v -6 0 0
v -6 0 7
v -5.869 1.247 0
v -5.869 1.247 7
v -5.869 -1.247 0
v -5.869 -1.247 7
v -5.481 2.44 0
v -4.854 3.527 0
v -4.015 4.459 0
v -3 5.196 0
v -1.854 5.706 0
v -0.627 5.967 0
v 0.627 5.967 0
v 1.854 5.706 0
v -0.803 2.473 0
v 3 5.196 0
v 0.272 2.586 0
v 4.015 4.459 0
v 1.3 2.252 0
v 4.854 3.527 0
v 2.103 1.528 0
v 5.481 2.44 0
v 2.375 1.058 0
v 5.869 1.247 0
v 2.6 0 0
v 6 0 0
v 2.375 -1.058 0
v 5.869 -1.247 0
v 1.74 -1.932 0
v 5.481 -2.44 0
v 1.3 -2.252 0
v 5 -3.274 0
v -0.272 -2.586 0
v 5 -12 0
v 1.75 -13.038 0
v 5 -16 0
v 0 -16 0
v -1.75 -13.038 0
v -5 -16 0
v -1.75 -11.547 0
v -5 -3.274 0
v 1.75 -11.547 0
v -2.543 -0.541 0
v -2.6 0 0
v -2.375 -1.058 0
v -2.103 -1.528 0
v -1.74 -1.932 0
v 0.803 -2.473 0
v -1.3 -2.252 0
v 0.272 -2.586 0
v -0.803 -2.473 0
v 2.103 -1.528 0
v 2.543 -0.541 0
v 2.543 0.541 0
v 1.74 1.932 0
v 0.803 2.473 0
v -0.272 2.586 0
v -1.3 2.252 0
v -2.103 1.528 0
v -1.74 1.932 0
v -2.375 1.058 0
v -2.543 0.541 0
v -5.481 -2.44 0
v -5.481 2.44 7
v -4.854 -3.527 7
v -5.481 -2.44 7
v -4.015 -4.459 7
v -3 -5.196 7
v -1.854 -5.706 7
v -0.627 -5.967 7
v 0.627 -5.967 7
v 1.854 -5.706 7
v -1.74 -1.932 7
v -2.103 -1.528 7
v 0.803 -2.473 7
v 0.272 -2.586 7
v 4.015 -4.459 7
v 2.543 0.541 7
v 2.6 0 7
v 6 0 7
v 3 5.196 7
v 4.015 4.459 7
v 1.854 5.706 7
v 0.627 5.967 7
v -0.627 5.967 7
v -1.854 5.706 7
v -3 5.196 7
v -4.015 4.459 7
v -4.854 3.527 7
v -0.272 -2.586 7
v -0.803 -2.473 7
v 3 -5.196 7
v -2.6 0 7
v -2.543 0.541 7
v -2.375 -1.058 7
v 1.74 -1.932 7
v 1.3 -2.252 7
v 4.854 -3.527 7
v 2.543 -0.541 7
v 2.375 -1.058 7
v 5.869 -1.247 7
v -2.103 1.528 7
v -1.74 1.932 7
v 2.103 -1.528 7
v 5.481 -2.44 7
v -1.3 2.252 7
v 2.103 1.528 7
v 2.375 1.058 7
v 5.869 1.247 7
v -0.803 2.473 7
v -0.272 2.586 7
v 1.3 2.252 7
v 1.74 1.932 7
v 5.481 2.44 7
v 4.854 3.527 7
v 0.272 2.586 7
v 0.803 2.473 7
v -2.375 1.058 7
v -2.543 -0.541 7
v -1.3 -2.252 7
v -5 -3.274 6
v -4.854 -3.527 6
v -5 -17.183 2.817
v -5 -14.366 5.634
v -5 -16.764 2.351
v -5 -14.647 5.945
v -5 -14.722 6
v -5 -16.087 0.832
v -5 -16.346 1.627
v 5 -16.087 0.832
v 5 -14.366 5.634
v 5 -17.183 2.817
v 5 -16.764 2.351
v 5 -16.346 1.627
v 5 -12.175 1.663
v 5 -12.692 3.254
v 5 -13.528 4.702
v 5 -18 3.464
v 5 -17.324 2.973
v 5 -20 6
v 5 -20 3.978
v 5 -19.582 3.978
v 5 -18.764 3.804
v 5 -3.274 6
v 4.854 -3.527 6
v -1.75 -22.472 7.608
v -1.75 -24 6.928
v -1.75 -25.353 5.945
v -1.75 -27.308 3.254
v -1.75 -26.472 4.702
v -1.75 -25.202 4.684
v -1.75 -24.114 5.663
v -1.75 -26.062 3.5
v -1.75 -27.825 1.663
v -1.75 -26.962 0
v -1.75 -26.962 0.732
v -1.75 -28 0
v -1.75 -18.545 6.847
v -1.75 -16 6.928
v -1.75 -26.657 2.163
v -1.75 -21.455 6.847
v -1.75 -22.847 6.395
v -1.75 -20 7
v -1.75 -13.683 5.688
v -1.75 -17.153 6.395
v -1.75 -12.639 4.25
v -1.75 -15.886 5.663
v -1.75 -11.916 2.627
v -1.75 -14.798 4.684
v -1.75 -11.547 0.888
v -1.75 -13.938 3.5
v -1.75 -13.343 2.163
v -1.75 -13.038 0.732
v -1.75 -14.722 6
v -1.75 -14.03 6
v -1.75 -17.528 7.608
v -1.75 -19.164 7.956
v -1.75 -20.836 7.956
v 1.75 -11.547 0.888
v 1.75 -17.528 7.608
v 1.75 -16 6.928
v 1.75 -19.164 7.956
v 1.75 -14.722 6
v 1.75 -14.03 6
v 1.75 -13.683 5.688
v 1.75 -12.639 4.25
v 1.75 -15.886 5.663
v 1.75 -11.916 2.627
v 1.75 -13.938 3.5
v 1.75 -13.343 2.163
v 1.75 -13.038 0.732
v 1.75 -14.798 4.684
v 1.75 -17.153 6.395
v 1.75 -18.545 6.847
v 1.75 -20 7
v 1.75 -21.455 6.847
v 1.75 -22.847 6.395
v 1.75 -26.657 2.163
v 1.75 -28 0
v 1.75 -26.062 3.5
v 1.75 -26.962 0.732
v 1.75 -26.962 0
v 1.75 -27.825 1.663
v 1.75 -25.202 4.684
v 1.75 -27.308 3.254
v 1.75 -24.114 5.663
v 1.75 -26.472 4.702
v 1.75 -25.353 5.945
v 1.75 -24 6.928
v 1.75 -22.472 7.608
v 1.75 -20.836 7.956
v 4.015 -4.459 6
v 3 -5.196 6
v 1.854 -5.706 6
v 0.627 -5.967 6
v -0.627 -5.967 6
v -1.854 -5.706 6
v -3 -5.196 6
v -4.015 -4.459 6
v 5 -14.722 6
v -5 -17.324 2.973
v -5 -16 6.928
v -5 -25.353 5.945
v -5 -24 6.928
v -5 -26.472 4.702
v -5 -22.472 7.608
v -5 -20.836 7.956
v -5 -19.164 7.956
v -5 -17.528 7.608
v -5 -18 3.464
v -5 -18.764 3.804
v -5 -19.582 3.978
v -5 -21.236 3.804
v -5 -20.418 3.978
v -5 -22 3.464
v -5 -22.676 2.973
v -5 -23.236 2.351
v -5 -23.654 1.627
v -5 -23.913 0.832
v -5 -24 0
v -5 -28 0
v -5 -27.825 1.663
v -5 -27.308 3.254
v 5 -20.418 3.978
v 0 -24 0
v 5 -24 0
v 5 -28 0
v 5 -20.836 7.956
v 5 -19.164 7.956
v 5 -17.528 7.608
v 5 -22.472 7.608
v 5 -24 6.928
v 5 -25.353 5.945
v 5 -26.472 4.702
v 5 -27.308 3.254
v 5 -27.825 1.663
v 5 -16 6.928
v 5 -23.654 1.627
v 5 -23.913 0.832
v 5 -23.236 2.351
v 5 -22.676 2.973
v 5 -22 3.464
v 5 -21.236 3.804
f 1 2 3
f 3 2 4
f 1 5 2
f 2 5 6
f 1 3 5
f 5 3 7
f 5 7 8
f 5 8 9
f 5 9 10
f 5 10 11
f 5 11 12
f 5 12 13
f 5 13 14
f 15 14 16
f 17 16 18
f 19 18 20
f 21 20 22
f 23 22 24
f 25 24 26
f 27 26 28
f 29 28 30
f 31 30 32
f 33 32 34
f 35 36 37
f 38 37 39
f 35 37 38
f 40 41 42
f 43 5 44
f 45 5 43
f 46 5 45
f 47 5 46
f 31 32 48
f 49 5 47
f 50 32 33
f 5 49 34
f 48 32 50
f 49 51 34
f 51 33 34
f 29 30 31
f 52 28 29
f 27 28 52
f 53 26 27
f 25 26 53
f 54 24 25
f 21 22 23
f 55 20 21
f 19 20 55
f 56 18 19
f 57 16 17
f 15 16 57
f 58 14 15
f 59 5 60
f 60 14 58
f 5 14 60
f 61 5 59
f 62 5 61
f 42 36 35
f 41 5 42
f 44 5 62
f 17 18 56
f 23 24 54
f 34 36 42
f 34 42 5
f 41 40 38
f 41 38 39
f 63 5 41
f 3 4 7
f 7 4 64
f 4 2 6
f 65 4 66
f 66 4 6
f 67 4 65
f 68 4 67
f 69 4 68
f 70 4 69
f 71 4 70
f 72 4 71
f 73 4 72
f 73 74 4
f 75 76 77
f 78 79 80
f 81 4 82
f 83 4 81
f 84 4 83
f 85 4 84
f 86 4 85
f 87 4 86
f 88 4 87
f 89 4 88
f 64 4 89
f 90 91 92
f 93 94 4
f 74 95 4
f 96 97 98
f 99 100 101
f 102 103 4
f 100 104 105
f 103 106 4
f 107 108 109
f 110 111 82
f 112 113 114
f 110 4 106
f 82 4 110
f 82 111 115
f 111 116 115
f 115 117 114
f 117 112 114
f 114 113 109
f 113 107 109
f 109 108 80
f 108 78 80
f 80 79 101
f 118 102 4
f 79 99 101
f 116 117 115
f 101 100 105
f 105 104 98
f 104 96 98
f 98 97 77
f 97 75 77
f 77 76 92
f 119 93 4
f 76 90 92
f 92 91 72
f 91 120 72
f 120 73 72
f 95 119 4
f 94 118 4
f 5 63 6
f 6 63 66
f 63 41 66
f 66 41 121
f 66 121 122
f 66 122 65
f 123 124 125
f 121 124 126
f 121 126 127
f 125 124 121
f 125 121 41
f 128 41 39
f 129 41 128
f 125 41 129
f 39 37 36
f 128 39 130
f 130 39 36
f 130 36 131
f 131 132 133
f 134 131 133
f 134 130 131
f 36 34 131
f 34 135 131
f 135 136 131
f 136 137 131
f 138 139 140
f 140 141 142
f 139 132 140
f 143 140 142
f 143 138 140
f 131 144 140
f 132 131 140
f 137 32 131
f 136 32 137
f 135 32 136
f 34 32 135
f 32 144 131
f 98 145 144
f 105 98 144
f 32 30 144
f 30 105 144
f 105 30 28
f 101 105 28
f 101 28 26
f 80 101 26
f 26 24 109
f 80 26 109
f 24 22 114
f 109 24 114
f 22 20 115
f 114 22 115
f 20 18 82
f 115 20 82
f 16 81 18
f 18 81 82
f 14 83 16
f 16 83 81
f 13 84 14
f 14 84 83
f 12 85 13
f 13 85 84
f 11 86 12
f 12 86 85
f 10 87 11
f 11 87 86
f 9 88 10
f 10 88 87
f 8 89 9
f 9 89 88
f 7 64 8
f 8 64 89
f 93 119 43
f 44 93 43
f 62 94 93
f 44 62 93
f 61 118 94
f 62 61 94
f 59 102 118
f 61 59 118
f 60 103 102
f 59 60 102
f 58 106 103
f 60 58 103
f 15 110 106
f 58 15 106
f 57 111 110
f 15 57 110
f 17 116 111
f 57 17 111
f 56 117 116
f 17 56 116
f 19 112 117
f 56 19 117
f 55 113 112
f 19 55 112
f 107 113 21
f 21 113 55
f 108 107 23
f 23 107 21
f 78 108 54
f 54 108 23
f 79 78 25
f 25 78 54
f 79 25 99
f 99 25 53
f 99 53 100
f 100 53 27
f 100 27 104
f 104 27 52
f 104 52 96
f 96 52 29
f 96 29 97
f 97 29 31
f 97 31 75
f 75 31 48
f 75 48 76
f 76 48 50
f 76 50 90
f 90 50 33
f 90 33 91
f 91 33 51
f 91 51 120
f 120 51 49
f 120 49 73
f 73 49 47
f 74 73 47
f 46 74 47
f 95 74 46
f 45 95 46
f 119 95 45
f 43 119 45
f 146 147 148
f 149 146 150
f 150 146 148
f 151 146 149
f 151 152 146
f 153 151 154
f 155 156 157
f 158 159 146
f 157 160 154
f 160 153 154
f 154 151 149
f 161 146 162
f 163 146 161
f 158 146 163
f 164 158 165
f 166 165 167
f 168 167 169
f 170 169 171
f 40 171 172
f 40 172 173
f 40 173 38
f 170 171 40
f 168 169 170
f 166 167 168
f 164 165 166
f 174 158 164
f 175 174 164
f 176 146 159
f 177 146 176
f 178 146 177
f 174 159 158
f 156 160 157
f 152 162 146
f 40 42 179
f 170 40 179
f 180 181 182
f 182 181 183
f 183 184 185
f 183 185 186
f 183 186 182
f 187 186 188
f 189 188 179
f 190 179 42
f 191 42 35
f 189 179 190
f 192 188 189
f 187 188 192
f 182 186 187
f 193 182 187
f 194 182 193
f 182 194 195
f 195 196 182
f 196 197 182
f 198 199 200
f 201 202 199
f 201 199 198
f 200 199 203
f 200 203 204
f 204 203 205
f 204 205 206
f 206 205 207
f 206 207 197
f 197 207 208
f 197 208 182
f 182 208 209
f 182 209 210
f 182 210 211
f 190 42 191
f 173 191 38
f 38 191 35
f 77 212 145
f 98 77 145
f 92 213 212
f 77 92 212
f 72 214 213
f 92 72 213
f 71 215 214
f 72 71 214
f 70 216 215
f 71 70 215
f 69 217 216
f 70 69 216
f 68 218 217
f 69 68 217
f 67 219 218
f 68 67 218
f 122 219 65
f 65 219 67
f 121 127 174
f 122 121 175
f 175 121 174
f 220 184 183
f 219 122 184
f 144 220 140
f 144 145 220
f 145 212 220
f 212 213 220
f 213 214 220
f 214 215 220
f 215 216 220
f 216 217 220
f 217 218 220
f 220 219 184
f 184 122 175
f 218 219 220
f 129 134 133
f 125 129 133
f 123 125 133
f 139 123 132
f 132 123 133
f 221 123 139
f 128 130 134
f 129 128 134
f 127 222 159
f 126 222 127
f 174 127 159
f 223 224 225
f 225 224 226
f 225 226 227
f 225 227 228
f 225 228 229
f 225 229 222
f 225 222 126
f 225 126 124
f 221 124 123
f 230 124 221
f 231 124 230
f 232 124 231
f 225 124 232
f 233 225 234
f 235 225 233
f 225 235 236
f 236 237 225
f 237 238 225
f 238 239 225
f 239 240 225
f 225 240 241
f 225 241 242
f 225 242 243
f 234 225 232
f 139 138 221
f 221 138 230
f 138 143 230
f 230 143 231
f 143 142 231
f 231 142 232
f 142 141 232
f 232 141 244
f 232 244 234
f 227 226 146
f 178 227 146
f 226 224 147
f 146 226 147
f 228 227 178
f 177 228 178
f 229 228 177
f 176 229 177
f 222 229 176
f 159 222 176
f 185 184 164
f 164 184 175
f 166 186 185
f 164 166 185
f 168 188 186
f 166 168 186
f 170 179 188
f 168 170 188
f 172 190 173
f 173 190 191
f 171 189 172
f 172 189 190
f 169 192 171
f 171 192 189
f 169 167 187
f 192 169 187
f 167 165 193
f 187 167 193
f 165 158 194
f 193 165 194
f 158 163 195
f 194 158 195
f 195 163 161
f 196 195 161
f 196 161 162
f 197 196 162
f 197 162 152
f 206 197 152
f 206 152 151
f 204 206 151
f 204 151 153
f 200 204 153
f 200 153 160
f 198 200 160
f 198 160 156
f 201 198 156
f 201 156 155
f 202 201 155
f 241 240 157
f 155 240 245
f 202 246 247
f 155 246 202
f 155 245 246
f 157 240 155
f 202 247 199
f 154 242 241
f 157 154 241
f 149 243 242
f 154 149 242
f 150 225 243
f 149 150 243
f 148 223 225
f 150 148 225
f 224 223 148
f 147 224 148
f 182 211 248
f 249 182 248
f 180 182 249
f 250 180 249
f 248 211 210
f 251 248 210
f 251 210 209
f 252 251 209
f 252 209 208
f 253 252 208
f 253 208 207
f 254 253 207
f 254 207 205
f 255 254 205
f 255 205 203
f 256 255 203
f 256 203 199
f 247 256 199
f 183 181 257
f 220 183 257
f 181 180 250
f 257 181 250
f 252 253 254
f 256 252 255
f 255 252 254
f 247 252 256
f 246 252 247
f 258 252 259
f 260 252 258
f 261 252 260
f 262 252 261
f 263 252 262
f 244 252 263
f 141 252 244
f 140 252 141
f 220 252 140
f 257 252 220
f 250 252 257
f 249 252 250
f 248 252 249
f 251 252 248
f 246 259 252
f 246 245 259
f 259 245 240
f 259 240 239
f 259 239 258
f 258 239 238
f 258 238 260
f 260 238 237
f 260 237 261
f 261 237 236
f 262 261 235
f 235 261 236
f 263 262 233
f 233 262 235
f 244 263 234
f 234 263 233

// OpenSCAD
$fs=0.5;

module hatch(){
	difference(){
		cylinder(3.5,r=8.5,center=true);
		cylinder(5,r=7,center=true);
	}
}



difference(){
	union(){
		cylinder(7,r=6);
		translate([0,-20,0])rotate([90,0,90])cylinder(10,r=8,center=true);
		translate([-5,-20,0])cube([10,20,6]);
	}
	translate([-10,-30,-10])cube([20,50,10]);
	cylinder(20,r=2.6,center=true);
	translate([0,-20,0])rotate([90,0,90])cylinder(20,r=4,center=true);
	translate([0,-20,0])rotate([0,90,0])hatch();
}

//cylinder(12,r=5);
